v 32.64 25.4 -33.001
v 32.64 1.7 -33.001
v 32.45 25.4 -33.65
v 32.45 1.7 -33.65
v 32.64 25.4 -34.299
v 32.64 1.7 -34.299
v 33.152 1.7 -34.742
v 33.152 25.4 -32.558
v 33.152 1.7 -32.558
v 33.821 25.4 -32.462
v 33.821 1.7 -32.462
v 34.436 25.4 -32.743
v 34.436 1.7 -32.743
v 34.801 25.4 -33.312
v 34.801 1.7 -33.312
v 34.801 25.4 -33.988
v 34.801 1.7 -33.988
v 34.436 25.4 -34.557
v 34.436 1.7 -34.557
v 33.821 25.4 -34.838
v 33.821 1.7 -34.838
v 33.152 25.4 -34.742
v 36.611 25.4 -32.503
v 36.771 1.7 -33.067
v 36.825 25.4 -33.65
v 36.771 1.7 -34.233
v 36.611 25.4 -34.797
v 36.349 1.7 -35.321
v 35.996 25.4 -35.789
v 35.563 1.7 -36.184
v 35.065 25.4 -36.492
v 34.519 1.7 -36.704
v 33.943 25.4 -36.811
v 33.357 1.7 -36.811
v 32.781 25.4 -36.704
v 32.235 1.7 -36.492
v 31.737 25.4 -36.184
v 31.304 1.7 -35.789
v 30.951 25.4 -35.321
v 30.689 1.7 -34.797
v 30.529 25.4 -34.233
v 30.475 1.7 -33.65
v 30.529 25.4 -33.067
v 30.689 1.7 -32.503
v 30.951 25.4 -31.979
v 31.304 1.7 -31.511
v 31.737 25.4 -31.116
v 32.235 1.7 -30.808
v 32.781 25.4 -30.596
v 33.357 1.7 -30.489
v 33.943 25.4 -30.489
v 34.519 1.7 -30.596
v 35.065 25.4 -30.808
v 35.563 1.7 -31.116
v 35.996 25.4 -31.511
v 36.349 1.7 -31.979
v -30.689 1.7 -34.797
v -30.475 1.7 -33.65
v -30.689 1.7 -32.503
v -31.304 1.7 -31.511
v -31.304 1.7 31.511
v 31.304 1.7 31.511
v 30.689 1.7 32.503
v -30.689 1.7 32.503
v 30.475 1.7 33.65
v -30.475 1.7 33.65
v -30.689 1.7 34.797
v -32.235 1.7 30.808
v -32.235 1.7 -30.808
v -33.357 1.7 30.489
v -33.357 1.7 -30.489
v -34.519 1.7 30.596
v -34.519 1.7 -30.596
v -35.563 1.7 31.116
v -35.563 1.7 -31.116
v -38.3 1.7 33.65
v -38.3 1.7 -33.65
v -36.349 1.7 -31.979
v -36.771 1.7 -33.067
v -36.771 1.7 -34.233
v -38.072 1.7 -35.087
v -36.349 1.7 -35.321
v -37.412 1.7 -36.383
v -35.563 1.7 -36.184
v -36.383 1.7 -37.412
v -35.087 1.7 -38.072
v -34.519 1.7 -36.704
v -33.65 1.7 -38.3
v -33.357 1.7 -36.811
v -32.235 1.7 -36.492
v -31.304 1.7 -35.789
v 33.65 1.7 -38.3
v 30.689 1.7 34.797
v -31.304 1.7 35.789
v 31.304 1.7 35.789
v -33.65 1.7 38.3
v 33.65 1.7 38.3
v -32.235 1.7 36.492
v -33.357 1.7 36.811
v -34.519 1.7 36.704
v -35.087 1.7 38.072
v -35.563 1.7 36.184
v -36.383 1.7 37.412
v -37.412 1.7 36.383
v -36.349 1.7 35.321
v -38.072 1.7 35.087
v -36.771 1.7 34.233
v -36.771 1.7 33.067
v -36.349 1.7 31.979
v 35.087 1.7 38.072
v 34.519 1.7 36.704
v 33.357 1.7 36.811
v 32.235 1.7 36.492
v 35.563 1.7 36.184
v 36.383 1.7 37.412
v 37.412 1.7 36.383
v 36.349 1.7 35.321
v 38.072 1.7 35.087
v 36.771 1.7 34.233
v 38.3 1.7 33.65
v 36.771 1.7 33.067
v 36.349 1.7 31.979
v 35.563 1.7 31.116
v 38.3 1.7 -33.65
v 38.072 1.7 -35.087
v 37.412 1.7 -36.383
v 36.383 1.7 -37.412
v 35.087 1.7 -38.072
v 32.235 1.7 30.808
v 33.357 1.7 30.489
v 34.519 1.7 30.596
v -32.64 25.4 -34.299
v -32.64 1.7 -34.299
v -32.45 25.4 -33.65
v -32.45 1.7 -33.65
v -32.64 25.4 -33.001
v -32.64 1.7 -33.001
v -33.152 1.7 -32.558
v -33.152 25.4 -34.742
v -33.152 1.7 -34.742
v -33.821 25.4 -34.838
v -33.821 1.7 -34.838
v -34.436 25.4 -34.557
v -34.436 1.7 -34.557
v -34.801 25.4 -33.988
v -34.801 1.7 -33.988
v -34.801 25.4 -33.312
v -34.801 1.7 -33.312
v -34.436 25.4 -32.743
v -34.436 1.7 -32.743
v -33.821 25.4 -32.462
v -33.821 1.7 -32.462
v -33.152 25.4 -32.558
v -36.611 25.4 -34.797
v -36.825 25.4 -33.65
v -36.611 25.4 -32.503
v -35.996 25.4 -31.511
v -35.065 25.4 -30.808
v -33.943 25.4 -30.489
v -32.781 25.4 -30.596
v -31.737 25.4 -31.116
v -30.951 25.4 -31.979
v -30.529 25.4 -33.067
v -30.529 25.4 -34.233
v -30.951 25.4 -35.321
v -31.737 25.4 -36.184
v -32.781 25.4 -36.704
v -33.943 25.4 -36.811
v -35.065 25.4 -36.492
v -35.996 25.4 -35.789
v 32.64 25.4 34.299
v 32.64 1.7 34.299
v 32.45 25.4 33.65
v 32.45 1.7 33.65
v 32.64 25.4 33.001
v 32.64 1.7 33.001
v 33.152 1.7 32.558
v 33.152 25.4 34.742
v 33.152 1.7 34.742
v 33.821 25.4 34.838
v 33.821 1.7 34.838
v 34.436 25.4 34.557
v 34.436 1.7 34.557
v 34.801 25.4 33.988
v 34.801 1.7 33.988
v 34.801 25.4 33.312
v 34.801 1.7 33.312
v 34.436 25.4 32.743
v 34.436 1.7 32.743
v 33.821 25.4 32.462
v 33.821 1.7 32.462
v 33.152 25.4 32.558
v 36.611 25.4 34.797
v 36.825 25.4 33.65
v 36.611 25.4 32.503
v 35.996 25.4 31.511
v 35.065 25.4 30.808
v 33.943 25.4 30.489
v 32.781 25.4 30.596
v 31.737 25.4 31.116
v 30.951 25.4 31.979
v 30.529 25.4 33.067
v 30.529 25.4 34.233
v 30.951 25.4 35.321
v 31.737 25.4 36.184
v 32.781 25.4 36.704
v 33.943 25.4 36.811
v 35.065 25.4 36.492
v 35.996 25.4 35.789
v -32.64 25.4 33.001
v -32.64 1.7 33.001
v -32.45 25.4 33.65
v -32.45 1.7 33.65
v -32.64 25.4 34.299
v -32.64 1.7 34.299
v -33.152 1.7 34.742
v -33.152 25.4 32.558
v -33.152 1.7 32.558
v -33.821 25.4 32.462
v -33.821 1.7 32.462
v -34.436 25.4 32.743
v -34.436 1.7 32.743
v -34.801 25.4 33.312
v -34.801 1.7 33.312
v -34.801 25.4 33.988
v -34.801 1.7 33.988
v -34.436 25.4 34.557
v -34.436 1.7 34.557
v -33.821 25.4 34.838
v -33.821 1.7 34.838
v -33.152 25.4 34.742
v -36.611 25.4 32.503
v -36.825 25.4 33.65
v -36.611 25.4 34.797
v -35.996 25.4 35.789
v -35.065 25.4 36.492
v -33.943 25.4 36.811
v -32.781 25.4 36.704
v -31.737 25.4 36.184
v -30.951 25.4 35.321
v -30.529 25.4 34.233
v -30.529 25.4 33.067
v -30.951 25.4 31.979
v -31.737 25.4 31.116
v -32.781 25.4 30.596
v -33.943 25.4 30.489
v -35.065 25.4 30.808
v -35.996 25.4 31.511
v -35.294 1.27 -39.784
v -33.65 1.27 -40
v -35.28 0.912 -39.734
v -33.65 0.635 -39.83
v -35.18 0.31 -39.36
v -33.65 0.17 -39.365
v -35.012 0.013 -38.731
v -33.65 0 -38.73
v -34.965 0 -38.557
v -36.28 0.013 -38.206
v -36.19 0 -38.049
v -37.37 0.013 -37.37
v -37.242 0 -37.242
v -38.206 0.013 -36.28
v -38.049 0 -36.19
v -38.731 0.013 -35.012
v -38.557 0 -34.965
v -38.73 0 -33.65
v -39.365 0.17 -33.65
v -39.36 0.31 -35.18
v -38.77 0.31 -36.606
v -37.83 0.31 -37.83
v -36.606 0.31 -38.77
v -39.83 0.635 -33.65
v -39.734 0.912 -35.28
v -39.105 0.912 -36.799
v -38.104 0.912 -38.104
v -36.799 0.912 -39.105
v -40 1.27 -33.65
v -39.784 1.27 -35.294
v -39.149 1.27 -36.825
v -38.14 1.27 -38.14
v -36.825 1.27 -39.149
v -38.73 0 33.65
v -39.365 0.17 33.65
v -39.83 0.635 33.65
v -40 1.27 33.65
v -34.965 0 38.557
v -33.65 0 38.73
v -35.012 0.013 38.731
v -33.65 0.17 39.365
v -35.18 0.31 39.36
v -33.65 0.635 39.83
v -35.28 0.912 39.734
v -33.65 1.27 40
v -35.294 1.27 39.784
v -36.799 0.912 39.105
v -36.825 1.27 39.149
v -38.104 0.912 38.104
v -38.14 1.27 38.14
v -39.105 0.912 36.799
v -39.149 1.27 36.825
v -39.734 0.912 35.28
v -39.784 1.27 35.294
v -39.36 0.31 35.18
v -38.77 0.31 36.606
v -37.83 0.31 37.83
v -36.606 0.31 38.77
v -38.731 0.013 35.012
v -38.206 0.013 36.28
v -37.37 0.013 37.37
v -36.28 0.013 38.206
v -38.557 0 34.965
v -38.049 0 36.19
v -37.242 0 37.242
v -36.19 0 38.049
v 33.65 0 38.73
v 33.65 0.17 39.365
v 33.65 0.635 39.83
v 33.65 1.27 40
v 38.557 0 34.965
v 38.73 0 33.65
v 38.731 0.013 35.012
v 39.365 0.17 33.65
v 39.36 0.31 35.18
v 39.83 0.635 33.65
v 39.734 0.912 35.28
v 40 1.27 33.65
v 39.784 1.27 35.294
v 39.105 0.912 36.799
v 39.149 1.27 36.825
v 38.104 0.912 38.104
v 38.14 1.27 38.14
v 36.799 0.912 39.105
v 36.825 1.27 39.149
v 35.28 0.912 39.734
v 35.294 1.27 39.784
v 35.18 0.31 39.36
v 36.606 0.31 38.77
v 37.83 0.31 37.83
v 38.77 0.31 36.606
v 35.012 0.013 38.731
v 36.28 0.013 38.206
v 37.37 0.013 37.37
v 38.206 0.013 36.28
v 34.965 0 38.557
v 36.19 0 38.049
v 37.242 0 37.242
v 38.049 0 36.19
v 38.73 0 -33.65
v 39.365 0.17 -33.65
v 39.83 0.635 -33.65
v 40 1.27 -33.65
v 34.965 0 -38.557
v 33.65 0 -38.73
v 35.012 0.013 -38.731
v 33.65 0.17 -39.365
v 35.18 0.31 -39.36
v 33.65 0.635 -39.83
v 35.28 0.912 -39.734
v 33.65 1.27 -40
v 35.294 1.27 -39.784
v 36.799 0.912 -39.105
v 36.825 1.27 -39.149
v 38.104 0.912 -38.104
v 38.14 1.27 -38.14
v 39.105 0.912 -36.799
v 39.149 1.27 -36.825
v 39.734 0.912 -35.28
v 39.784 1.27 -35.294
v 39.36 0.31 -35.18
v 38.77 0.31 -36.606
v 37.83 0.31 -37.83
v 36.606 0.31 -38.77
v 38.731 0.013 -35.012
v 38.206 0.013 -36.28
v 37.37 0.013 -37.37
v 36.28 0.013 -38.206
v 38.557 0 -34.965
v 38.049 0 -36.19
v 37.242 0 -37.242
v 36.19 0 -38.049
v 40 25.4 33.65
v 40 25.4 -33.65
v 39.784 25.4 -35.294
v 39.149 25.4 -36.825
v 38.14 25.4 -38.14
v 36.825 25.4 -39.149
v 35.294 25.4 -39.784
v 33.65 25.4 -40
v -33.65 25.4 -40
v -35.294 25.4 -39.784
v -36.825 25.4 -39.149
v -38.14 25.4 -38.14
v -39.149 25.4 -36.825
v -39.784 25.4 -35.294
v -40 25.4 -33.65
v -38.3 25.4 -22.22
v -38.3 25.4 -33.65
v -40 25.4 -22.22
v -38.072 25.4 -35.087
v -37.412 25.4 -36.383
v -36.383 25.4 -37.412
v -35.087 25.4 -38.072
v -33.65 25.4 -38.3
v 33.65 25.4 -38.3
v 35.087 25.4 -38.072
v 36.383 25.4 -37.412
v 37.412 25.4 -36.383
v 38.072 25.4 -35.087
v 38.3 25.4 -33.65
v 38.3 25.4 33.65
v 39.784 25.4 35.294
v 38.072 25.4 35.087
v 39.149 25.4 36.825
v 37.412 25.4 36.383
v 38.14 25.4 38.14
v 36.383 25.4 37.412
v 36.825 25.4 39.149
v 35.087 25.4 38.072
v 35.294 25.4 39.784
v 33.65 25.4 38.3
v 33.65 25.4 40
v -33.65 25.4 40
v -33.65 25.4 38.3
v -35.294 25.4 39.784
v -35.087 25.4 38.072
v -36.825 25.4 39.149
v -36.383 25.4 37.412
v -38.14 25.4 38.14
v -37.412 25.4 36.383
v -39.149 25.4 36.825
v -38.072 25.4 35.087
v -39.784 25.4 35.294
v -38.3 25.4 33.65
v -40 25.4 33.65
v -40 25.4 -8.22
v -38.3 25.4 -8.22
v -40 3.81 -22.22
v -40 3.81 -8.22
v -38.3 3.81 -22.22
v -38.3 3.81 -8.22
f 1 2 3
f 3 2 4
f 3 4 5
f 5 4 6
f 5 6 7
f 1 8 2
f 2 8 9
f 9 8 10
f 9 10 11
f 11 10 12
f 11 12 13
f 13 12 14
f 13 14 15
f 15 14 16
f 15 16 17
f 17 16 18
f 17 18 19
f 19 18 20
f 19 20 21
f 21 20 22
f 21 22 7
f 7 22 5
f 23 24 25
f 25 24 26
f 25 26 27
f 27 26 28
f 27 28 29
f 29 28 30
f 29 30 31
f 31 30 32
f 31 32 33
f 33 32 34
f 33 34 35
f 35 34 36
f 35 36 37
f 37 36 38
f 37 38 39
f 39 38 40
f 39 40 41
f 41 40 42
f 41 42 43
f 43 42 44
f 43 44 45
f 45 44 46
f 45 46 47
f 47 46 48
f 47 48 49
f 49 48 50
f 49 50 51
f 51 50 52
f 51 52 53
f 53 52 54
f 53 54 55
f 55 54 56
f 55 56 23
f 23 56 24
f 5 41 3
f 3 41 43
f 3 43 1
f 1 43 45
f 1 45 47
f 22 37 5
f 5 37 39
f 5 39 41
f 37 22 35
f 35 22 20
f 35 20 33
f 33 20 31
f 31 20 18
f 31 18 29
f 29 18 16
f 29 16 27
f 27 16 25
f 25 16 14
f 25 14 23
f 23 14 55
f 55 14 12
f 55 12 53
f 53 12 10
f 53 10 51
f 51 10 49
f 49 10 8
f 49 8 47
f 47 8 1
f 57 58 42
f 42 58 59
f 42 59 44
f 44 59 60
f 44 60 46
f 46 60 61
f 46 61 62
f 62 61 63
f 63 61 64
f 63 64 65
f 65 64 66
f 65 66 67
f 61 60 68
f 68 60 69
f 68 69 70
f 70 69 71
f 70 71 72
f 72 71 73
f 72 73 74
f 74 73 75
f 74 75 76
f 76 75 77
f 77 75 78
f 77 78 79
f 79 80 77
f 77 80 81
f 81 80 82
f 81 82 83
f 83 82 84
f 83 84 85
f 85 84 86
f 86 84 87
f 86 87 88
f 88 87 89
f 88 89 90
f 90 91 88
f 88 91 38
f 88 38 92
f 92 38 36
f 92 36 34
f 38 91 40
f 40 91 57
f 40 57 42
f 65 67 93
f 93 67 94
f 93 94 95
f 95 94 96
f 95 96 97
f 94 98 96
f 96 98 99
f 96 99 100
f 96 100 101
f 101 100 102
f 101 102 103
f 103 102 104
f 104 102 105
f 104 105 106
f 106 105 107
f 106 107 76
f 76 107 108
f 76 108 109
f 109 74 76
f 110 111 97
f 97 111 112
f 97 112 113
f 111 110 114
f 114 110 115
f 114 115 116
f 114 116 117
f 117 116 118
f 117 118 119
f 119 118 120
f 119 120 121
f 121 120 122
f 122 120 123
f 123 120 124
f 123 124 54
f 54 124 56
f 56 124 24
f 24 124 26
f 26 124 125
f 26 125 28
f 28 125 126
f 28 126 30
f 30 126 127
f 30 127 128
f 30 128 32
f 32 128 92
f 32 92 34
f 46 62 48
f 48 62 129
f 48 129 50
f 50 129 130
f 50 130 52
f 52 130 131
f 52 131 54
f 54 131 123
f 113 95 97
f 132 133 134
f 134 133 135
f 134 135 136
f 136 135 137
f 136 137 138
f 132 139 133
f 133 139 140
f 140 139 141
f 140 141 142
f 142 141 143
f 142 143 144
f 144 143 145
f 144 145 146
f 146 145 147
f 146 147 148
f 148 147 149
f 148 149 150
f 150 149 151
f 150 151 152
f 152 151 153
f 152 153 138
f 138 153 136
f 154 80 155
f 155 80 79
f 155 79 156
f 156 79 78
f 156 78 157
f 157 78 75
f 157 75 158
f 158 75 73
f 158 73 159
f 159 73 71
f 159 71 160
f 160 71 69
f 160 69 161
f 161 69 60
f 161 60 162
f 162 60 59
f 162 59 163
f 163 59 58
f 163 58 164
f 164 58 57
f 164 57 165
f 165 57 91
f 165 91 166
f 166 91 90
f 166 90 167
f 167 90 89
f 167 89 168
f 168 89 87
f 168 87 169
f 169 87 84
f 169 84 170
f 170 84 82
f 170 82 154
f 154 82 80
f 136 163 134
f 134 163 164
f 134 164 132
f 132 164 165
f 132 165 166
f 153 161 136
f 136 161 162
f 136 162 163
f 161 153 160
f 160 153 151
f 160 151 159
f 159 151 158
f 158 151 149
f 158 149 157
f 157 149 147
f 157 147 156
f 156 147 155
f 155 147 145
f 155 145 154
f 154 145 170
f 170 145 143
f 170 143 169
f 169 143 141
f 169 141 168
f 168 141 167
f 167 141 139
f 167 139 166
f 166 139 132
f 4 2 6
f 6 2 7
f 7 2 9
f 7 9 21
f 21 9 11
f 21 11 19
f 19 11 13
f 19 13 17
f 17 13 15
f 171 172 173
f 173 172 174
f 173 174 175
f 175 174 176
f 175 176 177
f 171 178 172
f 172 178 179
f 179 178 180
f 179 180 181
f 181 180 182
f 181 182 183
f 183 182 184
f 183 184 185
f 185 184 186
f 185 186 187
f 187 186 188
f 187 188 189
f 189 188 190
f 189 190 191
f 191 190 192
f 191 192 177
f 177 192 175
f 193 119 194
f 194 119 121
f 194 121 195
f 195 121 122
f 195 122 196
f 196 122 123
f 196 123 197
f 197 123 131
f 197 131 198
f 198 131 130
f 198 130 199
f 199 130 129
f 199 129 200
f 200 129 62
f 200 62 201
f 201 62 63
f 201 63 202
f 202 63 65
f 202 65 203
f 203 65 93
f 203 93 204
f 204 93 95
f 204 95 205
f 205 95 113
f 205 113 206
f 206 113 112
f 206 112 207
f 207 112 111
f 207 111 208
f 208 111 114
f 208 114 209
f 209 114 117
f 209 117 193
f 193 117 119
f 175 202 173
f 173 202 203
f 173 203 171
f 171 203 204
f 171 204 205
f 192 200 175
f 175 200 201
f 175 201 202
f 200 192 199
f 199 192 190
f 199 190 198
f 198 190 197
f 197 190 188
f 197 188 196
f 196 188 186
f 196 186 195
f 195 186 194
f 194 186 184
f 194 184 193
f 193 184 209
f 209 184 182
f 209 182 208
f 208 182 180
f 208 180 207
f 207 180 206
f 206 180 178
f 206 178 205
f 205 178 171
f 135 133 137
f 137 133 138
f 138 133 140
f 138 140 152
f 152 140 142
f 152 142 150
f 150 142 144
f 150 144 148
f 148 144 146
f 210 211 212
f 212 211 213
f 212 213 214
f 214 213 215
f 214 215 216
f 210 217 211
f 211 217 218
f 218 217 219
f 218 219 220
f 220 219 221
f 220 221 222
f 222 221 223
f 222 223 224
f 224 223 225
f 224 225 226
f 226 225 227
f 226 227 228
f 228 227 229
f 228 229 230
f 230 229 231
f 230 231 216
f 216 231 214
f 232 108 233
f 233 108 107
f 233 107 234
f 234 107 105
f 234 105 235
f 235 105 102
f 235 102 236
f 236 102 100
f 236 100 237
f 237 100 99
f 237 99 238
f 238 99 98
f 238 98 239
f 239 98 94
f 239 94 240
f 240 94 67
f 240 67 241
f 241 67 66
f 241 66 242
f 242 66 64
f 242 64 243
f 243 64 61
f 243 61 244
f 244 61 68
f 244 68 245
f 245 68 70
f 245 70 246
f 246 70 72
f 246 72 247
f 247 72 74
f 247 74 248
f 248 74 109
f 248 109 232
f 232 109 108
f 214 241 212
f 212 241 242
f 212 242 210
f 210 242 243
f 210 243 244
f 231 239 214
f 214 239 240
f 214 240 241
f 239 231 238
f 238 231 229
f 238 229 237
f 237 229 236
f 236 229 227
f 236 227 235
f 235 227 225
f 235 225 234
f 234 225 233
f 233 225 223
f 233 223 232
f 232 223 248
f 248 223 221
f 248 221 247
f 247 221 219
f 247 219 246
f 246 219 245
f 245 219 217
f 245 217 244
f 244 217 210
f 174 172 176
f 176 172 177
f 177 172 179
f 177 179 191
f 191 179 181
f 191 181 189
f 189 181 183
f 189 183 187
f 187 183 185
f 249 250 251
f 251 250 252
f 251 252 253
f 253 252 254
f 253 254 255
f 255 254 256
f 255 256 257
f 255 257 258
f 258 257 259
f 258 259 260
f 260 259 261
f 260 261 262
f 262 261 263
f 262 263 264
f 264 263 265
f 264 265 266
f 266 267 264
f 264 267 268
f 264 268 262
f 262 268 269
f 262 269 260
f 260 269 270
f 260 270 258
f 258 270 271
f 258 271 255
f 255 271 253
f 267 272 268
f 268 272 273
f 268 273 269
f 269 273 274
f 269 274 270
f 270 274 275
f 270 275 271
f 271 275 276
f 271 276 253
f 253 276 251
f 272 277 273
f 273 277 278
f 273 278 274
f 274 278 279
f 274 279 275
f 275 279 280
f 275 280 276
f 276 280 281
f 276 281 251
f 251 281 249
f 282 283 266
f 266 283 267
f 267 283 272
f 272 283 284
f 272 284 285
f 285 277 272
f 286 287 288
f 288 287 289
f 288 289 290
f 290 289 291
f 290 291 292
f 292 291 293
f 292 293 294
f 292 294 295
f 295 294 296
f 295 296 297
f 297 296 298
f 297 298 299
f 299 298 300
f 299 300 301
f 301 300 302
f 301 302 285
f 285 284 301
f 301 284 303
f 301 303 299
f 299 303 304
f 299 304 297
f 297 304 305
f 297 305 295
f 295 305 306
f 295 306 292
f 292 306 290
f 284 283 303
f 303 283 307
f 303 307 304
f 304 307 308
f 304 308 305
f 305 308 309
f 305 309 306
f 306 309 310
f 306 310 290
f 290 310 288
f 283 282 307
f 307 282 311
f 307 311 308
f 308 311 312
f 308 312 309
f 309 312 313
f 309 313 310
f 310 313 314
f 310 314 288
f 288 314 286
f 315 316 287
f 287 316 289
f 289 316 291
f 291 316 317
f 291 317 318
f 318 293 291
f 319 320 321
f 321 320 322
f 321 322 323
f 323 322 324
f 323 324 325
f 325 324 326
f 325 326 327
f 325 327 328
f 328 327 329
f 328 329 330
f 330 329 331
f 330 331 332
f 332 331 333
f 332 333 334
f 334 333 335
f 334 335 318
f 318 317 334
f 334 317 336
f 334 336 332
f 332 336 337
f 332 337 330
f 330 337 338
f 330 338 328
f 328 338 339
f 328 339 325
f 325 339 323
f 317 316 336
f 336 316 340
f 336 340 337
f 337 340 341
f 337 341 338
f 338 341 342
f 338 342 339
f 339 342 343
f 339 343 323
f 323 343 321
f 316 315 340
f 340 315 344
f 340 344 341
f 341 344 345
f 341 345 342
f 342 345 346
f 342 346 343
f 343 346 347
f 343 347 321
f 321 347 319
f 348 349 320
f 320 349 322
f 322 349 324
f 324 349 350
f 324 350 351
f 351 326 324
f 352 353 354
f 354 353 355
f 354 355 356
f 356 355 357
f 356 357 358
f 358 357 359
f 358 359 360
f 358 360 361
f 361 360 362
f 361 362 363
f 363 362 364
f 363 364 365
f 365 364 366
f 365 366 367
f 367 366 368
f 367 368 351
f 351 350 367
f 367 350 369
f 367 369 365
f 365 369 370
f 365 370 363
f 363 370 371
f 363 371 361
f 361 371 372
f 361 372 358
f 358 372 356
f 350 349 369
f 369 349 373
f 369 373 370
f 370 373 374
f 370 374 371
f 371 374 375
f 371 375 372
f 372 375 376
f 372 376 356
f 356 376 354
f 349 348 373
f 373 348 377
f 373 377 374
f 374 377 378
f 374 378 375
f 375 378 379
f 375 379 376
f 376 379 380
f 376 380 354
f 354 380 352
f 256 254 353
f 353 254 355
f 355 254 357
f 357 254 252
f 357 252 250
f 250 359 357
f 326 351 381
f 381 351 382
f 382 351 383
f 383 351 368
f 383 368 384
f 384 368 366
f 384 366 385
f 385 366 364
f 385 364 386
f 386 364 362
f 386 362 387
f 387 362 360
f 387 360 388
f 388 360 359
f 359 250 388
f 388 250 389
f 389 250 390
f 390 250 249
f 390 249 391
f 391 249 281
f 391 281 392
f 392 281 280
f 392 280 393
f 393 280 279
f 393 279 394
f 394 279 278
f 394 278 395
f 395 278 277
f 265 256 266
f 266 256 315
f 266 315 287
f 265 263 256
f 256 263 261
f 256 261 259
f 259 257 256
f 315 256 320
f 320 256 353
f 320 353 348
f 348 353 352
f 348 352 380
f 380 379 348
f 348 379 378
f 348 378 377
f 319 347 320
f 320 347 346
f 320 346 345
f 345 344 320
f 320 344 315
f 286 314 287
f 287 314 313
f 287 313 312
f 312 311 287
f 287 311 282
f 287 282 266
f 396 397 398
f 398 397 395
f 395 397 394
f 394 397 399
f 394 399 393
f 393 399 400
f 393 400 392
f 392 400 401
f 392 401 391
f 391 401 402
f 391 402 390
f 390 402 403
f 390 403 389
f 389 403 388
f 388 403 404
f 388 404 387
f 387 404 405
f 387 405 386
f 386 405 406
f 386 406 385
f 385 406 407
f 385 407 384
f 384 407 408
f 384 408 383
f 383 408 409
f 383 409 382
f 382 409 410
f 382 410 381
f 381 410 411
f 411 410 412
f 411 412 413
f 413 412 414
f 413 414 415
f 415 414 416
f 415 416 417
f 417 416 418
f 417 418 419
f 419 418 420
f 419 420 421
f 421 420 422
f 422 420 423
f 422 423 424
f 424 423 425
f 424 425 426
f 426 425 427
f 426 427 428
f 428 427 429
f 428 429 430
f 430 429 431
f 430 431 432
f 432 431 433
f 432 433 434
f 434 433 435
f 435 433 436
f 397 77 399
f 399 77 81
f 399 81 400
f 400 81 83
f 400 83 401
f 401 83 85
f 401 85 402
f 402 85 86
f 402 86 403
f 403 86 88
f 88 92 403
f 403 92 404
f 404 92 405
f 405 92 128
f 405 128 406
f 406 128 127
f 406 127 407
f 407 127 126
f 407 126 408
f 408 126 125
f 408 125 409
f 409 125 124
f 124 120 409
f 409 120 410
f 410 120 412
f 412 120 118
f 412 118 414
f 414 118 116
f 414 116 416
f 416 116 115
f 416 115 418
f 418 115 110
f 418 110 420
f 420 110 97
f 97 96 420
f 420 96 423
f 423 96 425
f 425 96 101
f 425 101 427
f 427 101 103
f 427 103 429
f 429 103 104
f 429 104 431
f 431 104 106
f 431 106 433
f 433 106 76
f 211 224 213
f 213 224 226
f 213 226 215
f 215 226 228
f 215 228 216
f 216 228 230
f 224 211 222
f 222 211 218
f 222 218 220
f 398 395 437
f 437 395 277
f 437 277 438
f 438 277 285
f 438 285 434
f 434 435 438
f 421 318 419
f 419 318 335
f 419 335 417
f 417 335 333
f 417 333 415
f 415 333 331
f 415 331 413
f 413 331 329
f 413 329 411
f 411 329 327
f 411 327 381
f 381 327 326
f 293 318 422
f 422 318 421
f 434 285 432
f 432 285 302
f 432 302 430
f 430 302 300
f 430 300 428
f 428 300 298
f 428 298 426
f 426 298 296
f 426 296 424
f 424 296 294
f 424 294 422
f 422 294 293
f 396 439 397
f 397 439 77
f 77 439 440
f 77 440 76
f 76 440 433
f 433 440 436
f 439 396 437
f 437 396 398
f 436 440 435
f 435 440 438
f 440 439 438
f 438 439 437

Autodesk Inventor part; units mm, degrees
ref_plane "YZ Plane" through (0, 0, 0) normal (1, 0, 0) x (0, 1, 0)
ref_plane "XZ Plane" through (0, 0, 0) normal (0, 1, 0) x (-1, 0, 0)
ref_plane "XY Plane" through (0, 0, 0) normal (0, 0, 1) x (1, 0, 0)
sketch "Sketch1" plane through (0, 0, 0) normal (0, 1, 0) x (-1, 0, 0)
  line L0 (-33.65, -40) -> (33.65, -40)
  line L1 (40, -33.65) -> (40, 33.65)
  line L2 (33.65, 40) -> (-33.65, 40)
  line L3 (-40, 33.65) -> (-40, -33.65)
  line L4 (-40, -40) -> (40, 40) construction
  line L5 (40, -40) -> (-40, 40) construction
  arc A0 (40, 33.65) -> (33.65, 40) centre (33.65, 33.65) ccw
  arc A1 (-33.65, 40) -> (-40, 33.65) centre (-33.65, 33.65) ccw
  arc A2 (-40, -33.65) -> (-33.65, -40) centre (-33.65, -33.65) ccw
  arc A3 (33.65, -40) -> (40, -33.65) centre (33.65, -33.65) ccw
  point P0 (0, 0)
  dimension "d0" = 80
  dimension "d1" = 80
  dimension "d2" = 6.35
extrude "Extrusion1" add sketch "Sketch1" along normal blind 25.4
shell "Shell1" thickness 1.7 removed faces 1 at (-11.2167, 25.4, 9.1)
fillet "Fillet1" radius 1.27 8 edges at (-38.1401, 0, -38.1401) (-40, 0, 0) (-38.1401, 0, 38.1401) (0, 0, 40) (38.1401, 0, 38.1401) (40, 0, 0) (38.1401, 0, -38.1401) (0, 0, -40)
sketch "Sketch2" plane through (-33.65, 1.7, 38.3) normal (0, 1, 0) x (1, 0, 0)
  arc A0 (-4.65, 4.65) -> (0, 0) centre (0, 4.65) ccw projected
  circle A1 centre (0, 4.65) radius 3.175
  circle A2 centre (0, 4.65) radius 1.2
  point P0 (33.65, 38.3)
  dimension "d7" = 6.35
  dimension "d8" = 2.4
extrude "Extrusion2" add sketch "Sketch2" along normal up to surface (23.7 mm away)
mirror "Mirror1" about plane through (0, 0, 0) normal (1, 0, 0) of "Extrusion2"
mirror "Mirror2" about plane through (0, 0, 0) normal (0, 0, 1) of "Extrusion2", "Mirror1"
sketch "Sketch3" plane through (-40, 25.4, -33.65) normal (-1, 0, 0) x (0, 0, 1)
  line L0 (0, 0) -> (67.3, 0) projected
  line L1 (11.43, 0) -> (25.43, 0)
  line L2 (25.43, 0) -> (25.43, -21.59)
  line L3 (25.43, -21.59) -> (11.43, -21.59)
  line L4 (11.43, -21.59) -> (11.43, 0)
  line L5 (-6.35, -24.13) -> (-6.35, 0) projected
  point P0 (33.65, -25.4)
  dimension "d11" = 14
  dimension "d12" = 21.59
  dimension "d13" = 17.78
extrude "Extrusion3" cut sketch "Sketch3" against normal blind 25.4
properties part number "Arduino_case_bottom_JC_Rev1"
